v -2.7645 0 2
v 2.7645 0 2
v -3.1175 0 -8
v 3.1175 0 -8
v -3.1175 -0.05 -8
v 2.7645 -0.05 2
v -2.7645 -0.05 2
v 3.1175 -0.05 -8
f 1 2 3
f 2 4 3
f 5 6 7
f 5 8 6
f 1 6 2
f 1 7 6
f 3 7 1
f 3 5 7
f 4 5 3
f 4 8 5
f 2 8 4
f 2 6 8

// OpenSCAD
$fa = 1;
$fs = 0.04;
mag = 1;
thickness = mag * 0.05;
wback = mag * 6.235;
wfront = mag * 5.529;
length = mag * 10;

p0 = [-wback/2,-length];
p1 = [-wfront/2, 0];
p2 = [wfront/2, 0];
p3 = [wback/2, -length];
points = [p0, p1, p2, p3];

translate([0,0,2])
rotate([90,0,0])
linear_extrude(height = thickness) {
  polygon(points);
}
